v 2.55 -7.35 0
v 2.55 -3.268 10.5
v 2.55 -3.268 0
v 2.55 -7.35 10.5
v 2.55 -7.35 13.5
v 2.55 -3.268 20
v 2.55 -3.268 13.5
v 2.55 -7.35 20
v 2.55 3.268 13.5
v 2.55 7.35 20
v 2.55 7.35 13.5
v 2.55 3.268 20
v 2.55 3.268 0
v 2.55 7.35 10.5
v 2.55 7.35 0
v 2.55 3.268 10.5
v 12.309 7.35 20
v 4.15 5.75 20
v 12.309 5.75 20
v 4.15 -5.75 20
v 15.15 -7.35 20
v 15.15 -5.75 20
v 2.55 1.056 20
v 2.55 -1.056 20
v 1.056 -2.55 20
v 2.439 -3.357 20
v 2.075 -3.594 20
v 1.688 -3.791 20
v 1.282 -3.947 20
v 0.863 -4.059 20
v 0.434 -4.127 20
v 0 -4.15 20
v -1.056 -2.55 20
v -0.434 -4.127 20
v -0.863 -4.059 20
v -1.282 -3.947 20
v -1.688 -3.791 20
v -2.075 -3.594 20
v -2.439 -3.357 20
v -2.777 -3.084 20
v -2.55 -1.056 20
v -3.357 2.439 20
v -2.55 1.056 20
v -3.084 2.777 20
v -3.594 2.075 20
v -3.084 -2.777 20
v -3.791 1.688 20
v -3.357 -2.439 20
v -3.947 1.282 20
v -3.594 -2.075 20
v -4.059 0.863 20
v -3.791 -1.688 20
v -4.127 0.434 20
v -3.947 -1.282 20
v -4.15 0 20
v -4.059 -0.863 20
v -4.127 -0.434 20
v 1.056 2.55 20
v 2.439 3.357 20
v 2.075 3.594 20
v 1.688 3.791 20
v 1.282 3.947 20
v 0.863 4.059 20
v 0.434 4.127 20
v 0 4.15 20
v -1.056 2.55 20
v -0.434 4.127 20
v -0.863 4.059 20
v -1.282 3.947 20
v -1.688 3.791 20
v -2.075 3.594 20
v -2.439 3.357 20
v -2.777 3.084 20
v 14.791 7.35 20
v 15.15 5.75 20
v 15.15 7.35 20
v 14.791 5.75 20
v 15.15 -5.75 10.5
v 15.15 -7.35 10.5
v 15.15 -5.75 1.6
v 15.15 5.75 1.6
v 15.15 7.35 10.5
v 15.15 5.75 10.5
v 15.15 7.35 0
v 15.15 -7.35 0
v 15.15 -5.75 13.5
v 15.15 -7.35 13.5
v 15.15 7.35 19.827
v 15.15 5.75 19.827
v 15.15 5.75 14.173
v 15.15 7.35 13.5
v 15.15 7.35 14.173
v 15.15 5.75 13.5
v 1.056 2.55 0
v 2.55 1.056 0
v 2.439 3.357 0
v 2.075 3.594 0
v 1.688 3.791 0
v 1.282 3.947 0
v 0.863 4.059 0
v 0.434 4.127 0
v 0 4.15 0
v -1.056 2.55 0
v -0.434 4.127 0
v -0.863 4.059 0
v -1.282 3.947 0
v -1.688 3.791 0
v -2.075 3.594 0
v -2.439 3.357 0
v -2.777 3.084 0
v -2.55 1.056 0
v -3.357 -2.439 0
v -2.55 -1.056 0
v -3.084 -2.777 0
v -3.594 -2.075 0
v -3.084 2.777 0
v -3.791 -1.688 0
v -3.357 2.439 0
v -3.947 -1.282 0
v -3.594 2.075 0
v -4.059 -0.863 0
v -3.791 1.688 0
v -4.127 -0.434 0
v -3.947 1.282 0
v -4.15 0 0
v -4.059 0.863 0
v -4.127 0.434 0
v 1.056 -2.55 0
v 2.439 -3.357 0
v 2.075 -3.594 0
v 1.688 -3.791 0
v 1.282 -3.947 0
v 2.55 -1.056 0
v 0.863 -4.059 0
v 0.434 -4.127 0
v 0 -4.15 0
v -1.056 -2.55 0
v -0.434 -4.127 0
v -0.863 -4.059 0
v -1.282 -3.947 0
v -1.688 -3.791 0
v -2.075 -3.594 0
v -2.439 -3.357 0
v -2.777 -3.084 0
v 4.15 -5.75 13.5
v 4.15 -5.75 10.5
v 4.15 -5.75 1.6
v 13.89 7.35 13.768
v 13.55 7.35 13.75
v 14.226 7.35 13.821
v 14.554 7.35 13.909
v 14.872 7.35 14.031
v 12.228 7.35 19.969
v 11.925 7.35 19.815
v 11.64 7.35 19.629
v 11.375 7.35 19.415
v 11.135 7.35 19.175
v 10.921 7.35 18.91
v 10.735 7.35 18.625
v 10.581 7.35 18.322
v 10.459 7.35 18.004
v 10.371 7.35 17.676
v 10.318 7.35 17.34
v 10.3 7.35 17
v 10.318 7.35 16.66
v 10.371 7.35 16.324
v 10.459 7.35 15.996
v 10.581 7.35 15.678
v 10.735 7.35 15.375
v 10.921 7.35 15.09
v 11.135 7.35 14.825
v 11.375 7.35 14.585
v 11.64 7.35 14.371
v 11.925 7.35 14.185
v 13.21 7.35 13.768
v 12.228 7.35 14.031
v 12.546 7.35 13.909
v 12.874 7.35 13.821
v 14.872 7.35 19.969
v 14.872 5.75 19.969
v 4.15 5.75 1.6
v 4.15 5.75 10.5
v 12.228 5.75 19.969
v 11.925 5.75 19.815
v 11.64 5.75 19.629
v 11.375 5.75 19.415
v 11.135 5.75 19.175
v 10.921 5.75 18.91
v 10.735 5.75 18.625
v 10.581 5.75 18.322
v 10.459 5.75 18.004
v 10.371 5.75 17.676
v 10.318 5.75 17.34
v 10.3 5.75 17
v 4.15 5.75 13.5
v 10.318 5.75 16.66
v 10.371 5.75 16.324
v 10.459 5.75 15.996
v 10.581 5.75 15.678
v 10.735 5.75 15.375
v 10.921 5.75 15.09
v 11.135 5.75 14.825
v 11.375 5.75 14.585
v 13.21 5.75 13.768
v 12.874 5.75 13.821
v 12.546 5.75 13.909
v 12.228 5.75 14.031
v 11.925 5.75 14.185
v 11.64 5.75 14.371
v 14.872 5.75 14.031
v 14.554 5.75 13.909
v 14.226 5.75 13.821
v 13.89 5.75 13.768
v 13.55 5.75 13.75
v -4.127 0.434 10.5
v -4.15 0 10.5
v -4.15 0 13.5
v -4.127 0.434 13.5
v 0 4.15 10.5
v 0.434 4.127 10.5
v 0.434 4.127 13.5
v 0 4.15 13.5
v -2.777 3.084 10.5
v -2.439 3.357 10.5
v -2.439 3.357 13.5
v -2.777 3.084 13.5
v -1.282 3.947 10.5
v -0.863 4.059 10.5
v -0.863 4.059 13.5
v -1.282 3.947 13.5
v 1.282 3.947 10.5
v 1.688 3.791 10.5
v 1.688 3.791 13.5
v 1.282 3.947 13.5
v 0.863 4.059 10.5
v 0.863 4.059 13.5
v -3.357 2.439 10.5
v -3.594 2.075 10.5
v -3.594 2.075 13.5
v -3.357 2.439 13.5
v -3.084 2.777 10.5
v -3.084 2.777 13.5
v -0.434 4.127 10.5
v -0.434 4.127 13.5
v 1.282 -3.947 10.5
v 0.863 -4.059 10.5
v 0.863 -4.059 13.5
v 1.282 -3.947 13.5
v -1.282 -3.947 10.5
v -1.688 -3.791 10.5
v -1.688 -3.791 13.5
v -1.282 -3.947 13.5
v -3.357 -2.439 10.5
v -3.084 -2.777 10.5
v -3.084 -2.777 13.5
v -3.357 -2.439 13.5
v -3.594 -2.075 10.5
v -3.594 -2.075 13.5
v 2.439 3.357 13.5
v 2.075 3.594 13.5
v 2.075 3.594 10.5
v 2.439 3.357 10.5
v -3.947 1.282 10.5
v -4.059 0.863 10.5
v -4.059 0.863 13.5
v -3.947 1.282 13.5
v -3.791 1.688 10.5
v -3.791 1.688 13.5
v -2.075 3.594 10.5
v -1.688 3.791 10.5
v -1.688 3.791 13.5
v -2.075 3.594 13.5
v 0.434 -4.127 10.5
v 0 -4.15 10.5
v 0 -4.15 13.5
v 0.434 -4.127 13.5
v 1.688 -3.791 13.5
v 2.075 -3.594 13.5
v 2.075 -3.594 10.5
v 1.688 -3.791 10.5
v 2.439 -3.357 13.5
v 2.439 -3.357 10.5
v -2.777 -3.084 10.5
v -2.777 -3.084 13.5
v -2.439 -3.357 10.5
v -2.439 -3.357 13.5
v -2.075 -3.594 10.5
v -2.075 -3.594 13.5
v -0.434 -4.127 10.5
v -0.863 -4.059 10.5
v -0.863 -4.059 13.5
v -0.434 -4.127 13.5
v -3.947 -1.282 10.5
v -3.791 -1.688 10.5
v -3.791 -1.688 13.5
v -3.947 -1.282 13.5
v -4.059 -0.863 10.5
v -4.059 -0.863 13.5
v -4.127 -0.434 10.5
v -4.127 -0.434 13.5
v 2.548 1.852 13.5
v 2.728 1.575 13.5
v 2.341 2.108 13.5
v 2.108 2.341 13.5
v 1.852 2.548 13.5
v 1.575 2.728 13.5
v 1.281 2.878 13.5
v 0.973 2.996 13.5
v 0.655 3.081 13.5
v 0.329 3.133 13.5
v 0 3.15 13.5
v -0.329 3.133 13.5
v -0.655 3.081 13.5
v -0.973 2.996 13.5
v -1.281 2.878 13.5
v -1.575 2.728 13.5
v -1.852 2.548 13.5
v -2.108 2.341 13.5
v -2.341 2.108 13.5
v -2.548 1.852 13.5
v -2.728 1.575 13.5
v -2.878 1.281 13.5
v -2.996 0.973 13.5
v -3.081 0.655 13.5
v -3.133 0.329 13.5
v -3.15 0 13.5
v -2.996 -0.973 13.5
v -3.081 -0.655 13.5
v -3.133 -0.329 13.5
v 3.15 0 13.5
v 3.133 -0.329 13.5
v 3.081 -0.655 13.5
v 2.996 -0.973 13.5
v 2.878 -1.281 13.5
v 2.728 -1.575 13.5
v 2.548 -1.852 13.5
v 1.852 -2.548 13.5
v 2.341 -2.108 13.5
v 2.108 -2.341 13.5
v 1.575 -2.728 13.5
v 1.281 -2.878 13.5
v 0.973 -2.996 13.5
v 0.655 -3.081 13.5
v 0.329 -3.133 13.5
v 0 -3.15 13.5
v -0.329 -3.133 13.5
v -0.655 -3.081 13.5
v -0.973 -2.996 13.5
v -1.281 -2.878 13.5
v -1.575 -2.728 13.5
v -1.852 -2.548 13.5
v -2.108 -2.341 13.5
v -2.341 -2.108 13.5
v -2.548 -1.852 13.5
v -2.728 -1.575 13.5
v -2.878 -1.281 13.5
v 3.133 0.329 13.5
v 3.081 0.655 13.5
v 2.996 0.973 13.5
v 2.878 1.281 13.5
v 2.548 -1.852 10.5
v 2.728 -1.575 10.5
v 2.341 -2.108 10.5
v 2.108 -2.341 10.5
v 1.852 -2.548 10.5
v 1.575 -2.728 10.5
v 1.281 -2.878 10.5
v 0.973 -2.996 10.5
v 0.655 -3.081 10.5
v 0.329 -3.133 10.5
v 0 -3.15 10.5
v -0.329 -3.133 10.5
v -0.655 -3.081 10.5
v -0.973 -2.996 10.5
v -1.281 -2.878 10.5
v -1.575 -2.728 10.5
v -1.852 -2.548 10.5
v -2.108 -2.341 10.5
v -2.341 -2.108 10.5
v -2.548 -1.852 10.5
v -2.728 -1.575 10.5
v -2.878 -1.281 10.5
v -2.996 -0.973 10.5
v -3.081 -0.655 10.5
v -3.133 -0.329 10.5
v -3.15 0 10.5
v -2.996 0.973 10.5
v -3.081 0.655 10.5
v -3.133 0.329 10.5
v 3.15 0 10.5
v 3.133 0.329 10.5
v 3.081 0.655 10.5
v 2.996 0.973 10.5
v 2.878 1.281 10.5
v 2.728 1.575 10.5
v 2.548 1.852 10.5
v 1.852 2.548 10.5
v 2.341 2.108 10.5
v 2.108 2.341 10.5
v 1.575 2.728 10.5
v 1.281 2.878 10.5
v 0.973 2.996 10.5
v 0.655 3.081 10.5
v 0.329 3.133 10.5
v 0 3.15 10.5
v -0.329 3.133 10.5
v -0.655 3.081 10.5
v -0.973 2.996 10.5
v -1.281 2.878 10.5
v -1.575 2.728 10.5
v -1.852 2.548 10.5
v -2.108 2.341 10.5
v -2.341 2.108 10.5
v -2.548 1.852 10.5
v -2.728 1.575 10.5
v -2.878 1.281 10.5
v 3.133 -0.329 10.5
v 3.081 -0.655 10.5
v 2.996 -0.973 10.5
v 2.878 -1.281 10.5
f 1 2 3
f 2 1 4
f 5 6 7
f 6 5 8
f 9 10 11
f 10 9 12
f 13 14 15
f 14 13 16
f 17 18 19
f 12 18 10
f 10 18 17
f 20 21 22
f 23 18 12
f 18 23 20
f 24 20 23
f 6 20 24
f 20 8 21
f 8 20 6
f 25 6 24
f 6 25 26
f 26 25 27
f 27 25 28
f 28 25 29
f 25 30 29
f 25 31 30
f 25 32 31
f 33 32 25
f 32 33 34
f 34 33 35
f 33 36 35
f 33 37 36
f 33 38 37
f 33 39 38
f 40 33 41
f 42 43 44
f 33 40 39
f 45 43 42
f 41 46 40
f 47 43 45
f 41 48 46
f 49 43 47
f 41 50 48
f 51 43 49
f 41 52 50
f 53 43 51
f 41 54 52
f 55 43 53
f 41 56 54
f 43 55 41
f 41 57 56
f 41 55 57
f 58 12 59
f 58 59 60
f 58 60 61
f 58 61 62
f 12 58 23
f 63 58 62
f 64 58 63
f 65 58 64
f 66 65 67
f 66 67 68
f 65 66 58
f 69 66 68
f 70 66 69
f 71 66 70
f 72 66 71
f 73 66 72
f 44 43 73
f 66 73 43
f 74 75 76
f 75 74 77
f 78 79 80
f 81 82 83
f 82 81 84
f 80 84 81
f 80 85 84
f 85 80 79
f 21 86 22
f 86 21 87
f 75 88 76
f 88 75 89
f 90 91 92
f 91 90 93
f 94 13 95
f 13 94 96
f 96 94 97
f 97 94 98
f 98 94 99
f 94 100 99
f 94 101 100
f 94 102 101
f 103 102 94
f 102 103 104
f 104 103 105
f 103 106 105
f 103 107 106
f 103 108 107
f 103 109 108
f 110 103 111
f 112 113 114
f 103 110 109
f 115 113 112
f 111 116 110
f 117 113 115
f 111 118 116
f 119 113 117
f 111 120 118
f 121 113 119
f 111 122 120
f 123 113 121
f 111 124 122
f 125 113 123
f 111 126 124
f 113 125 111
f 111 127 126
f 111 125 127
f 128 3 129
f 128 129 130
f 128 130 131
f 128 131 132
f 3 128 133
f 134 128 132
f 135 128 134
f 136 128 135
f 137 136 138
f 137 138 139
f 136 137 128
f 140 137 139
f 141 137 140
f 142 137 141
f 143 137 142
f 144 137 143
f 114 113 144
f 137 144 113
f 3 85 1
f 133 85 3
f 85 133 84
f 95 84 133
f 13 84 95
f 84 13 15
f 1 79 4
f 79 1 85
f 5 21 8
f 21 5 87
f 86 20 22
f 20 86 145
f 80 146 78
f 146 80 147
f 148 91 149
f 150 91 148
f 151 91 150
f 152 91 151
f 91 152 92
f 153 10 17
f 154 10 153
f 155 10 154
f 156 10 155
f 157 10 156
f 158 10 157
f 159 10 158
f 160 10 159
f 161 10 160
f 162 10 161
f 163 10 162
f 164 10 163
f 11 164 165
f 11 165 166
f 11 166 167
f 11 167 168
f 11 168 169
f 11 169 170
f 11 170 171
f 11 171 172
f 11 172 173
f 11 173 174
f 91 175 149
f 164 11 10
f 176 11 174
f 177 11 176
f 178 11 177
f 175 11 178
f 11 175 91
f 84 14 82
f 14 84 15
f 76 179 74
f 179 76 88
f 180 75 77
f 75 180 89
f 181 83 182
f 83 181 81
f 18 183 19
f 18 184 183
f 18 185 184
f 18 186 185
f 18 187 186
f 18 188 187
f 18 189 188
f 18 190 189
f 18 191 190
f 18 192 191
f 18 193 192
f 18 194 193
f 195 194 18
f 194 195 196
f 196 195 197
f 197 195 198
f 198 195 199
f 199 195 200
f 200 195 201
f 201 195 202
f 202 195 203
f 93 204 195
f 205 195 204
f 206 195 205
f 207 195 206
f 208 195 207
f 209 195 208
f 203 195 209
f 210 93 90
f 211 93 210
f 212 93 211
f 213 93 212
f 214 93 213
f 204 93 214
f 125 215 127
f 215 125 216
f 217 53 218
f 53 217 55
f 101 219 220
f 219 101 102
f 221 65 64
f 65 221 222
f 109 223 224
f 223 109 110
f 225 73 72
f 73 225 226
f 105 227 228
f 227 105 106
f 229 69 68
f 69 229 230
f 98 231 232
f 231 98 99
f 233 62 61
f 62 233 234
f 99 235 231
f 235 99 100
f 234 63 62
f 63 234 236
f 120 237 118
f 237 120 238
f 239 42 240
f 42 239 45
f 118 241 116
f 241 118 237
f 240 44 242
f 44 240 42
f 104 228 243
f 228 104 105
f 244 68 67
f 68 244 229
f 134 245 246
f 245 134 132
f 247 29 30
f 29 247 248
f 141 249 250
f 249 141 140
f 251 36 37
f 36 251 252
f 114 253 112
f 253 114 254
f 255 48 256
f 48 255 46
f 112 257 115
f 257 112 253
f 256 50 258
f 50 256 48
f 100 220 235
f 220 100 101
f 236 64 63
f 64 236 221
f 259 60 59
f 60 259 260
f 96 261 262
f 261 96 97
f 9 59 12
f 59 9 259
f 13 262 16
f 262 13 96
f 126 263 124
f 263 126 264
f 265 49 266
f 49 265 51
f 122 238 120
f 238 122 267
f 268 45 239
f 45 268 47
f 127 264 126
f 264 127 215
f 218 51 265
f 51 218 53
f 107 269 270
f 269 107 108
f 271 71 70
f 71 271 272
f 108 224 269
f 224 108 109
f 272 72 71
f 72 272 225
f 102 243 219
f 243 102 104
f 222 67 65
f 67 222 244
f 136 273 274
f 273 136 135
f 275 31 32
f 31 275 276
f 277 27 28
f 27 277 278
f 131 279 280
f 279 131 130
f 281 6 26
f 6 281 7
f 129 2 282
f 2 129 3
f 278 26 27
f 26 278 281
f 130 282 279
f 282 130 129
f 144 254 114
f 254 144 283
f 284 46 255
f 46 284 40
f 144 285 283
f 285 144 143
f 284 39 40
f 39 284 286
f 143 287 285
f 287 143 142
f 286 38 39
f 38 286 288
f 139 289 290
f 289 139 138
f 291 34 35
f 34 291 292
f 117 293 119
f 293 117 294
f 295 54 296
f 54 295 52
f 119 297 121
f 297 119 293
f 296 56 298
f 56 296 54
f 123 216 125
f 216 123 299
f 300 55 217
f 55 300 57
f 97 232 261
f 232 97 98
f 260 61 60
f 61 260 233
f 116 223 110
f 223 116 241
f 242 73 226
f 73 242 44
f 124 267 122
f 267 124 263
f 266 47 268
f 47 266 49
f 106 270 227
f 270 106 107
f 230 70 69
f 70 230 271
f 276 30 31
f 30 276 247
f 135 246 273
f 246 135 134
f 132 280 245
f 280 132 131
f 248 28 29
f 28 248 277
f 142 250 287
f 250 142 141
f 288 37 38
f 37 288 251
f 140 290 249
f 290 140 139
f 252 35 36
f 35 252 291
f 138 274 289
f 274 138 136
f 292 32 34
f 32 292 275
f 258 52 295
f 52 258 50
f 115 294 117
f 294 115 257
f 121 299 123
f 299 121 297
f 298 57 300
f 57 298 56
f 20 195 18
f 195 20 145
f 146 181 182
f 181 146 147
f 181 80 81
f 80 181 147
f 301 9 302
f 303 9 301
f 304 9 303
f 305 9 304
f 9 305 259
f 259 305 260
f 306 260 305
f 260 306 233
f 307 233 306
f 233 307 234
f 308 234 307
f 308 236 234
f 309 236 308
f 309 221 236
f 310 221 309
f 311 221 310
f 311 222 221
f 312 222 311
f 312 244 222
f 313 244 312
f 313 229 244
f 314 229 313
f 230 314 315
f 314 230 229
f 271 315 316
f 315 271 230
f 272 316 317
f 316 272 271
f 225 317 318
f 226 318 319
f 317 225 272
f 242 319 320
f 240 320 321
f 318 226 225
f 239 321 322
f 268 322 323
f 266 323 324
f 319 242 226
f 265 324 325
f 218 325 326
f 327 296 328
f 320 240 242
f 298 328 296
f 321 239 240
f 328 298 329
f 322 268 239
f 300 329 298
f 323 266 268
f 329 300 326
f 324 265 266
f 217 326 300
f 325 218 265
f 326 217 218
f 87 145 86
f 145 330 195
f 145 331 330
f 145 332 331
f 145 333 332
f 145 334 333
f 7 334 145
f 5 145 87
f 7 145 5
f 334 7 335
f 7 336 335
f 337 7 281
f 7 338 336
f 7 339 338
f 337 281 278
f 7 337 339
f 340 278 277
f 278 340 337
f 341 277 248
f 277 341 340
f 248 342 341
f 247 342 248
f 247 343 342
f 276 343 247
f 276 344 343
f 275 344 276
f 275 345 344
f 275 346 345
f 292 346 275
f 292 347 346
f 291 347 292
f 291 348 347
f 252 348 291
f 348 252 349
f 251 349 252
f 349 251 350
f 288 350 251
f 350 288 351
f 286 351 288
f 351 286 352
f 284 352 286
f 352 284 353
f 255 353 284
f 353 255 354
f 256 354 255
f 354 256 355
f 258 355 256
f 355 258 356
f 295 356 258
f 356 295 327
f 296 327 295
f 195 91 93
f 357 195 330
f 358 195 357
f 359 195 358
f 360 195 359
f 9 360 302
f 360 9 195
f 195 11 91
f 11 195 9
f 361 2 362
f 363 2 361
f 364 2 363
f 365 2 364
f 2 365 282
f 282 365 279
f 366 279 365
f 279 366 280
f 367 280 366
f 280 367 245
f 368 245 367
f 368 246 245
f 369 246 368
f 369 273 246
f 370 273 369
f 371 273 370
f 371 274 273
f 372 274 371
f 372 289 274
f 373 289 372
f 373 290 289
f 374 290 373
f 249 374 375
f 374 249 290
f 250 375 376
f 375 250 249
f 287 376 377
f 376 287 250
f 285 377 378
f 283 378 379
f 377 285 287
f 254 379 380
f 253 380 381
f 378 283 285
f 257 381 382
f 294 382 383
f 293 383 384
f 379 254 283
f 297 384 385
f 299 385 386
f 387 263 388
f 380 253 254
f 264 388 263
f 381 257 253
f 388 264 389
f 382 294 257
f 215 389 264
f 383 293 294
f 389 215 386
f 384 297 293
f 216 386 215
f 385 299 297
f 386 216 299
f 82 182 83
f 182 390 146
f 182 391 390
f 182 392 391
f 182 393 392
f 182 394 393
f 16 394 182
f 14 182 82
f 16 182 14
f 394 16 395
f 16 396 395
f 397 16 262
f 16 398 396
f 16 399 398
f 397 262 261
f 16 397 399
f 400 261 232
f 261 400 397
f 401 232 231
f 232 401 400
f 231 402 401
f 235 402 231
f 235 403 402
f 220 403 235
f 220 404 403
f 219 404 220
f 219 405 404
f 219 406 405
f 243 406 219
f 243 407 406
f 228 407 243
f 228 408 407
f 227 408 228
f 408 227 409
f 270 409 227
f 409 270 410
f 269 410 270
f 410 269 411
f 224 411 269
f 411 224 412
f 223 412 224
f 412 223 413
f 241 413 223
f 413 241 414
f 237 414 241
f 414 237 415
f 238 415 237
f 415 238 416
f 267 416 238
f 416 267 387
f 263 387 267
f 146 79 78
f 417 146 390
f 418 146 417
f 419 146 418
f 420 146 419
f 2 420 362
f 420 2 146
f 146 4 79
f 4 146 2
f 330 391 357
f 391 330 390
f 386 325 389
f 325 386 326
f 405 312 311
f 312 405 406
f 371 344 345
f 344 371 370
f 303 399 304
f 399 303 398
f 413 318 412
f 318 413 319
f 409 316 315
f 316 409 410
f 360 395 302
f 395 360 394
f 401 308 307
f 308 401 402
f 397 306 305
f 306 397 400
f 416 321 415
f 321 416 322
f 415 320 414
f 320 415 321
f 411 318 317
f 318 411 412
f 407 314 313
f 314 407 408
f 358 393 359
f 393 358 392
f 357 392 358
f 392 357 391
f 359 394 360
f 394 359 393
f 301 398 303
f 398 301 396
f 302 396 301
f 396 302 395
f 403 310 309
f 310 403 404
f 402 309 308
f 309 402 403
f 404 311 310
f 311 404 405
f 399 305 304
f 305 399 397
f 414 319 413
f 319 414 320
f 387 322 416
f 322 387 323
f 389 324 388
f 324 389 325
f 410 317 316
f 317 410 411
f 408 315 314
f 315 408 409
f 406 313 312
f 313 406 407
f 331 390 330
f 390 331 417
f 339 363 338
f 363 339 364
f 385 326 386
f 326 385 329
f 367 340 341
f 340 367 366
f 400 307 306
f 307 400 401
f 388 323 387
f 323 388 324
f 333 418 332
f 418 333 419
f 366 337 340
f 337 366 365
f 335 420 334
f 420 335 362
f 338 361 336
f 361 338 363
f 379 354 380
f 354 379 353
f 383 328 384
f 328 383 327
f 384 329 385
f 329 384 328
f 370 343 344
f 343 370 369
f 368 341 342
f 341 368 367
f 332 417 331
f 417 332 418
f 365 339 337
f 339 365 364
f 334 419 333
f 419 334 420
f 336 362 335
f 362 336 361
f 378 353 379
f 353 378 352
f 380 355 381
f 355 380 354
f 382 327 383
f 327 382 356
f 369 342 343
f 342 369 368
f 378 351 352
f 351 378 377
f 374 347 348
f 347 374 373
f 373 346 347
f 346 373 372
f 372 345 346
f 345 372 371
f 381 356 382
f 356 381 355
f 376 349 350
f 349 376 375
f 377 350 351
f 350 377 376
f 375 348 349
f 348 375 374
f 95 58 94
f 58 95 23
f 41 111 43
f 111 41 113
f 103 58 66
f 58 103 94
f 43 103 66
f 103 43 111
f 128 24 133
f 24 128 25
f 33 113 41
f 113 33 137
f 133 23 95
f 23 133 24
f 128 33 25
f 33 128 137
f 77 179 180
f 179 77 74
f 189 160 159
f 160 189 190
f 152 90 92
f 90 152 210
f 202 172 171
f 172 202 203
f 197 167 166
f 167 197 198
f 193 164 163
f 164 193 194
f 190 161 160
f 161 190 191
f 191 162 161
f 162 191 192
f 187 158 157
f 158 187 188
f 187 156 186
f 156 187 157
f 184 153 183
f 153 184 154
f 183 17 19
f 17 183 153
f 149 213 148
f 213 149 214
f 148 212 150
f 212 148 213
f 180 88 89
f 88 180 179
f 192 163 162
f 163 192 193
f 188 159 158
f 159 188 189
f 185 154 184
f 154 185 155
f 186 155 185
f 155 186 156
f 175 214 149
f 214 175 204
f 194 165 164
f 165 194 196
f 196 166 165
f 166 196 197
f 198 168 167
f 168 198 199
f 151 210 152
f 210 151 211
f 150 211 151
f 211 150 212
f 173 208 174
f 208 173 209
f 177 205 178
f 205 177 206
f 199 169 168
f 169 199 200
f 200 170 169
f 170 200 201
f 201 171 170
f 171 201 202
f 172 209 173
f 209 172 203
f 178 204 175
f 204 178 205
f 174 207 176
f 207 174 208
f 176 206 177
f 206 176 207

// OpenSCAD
// =============================================================================
// PROJECT: VIFLY UNIVERSAL C-BRACKET (OCTO-SLEEVE)
// VERSION: 1.5 (Octagonal Bore & Secured Floor)
// DESCRIPTION: Features an octagonal standoff hole for a superior TPU fit
//              and a solid bottom plate for buzzer security.
// =============================================================================

/* [1. STANDOFF SETTINGS] */
// Diameter of the standoff (Standard 5mm). Octagon shape handles the fit.
standoff_dia    = 5.1; 
wall_thick      = 1.6; 

/* [2. BUZZER DIMENSIONS] */
buz_w           = 11.5; 
buz_l           = 18.0; 
jaw_depth       = 11.0;  

/* [3. FEATURE SETTINGS] */
ziptie_w        = 3;
button_z_offset = 15.0; 
button_dia      = 6.5;

/* [4. INTERNAL CALCULATIONS] */
// $fn=8 creates the octagonal bore
$fn = 60;
total_h = buz_l + 2; 

// =============================================================================
// MAIN ASSEMBLY
// =============================================================================

difference() {
    
    // --- STEP 1: THE SOLID BODY ---
    union() {
        // A. The Standoff Sleeve (Outer remains round for aero)
        cylinder(h=total_h, d=standoff_dia + (wall_thick * 2));
        
        // B. The Dual Side Jaws
        for(y = [-1, 1]) {
            translate([standoff_dia/2 + jaw_depth/2 + wall_thick/2, y * (buz_w/2 + wall_thick/2), total_h/2])
                cube([jaw_depth + wall_thick, wall_thick, total_h], center=true);
        }
            
        // C. Structural Back-Plate
        translate([standoff_dia/2 + wall_thick/2, 0, total_h/2])
            cube([wall_thick, buz_w + wall_thick*2, total_h], center=true);

        // D. The Secured Floor
        translate([standoff_dia/2 + jaw_depth/2 + wall_thick/2, 0, wall_thick/2])
            cube([jaw_depth + wall_thick, buz_w + wall_thick*2, wall_thick], center=true);
    }

    // --- STEP 2: THE SUBTRACTIONS ---

    // A. THE OCTAGONAL STANDOFF BORE
    // We use $fn=8 here to create the internal ridges for better TPU fit.
    translate([0, 0, -1])
        rotate([0, 0, 22.5]) // Rotates octagon so flats face the buzzer
            cylinder(h=total_h + 2, d=standoff_dia / cos(180/8), $fn=8);

    // B. THE BUTTON WINDOW
    translate([standoff_dia/2 + jaw_depth, buz_w/2 + wall_thick/2, 2 + button_z_offset])
        rotate([90, 0, 0])
            cylinder(h=10, d=button_dia, center=true);

    // C. RETENTION ZIP-TIE TRENCH
    translate([0, 0, total_h/2 + 2])
        difference() {
            cylinder(h=ziptie_w, d=standoff_dia + jaw_depth * 4, center=true);
            cylinder(h=ziptie_w + 1, d=standoff_dia + (wall_thick * 0.75), center=true);
        }
}
